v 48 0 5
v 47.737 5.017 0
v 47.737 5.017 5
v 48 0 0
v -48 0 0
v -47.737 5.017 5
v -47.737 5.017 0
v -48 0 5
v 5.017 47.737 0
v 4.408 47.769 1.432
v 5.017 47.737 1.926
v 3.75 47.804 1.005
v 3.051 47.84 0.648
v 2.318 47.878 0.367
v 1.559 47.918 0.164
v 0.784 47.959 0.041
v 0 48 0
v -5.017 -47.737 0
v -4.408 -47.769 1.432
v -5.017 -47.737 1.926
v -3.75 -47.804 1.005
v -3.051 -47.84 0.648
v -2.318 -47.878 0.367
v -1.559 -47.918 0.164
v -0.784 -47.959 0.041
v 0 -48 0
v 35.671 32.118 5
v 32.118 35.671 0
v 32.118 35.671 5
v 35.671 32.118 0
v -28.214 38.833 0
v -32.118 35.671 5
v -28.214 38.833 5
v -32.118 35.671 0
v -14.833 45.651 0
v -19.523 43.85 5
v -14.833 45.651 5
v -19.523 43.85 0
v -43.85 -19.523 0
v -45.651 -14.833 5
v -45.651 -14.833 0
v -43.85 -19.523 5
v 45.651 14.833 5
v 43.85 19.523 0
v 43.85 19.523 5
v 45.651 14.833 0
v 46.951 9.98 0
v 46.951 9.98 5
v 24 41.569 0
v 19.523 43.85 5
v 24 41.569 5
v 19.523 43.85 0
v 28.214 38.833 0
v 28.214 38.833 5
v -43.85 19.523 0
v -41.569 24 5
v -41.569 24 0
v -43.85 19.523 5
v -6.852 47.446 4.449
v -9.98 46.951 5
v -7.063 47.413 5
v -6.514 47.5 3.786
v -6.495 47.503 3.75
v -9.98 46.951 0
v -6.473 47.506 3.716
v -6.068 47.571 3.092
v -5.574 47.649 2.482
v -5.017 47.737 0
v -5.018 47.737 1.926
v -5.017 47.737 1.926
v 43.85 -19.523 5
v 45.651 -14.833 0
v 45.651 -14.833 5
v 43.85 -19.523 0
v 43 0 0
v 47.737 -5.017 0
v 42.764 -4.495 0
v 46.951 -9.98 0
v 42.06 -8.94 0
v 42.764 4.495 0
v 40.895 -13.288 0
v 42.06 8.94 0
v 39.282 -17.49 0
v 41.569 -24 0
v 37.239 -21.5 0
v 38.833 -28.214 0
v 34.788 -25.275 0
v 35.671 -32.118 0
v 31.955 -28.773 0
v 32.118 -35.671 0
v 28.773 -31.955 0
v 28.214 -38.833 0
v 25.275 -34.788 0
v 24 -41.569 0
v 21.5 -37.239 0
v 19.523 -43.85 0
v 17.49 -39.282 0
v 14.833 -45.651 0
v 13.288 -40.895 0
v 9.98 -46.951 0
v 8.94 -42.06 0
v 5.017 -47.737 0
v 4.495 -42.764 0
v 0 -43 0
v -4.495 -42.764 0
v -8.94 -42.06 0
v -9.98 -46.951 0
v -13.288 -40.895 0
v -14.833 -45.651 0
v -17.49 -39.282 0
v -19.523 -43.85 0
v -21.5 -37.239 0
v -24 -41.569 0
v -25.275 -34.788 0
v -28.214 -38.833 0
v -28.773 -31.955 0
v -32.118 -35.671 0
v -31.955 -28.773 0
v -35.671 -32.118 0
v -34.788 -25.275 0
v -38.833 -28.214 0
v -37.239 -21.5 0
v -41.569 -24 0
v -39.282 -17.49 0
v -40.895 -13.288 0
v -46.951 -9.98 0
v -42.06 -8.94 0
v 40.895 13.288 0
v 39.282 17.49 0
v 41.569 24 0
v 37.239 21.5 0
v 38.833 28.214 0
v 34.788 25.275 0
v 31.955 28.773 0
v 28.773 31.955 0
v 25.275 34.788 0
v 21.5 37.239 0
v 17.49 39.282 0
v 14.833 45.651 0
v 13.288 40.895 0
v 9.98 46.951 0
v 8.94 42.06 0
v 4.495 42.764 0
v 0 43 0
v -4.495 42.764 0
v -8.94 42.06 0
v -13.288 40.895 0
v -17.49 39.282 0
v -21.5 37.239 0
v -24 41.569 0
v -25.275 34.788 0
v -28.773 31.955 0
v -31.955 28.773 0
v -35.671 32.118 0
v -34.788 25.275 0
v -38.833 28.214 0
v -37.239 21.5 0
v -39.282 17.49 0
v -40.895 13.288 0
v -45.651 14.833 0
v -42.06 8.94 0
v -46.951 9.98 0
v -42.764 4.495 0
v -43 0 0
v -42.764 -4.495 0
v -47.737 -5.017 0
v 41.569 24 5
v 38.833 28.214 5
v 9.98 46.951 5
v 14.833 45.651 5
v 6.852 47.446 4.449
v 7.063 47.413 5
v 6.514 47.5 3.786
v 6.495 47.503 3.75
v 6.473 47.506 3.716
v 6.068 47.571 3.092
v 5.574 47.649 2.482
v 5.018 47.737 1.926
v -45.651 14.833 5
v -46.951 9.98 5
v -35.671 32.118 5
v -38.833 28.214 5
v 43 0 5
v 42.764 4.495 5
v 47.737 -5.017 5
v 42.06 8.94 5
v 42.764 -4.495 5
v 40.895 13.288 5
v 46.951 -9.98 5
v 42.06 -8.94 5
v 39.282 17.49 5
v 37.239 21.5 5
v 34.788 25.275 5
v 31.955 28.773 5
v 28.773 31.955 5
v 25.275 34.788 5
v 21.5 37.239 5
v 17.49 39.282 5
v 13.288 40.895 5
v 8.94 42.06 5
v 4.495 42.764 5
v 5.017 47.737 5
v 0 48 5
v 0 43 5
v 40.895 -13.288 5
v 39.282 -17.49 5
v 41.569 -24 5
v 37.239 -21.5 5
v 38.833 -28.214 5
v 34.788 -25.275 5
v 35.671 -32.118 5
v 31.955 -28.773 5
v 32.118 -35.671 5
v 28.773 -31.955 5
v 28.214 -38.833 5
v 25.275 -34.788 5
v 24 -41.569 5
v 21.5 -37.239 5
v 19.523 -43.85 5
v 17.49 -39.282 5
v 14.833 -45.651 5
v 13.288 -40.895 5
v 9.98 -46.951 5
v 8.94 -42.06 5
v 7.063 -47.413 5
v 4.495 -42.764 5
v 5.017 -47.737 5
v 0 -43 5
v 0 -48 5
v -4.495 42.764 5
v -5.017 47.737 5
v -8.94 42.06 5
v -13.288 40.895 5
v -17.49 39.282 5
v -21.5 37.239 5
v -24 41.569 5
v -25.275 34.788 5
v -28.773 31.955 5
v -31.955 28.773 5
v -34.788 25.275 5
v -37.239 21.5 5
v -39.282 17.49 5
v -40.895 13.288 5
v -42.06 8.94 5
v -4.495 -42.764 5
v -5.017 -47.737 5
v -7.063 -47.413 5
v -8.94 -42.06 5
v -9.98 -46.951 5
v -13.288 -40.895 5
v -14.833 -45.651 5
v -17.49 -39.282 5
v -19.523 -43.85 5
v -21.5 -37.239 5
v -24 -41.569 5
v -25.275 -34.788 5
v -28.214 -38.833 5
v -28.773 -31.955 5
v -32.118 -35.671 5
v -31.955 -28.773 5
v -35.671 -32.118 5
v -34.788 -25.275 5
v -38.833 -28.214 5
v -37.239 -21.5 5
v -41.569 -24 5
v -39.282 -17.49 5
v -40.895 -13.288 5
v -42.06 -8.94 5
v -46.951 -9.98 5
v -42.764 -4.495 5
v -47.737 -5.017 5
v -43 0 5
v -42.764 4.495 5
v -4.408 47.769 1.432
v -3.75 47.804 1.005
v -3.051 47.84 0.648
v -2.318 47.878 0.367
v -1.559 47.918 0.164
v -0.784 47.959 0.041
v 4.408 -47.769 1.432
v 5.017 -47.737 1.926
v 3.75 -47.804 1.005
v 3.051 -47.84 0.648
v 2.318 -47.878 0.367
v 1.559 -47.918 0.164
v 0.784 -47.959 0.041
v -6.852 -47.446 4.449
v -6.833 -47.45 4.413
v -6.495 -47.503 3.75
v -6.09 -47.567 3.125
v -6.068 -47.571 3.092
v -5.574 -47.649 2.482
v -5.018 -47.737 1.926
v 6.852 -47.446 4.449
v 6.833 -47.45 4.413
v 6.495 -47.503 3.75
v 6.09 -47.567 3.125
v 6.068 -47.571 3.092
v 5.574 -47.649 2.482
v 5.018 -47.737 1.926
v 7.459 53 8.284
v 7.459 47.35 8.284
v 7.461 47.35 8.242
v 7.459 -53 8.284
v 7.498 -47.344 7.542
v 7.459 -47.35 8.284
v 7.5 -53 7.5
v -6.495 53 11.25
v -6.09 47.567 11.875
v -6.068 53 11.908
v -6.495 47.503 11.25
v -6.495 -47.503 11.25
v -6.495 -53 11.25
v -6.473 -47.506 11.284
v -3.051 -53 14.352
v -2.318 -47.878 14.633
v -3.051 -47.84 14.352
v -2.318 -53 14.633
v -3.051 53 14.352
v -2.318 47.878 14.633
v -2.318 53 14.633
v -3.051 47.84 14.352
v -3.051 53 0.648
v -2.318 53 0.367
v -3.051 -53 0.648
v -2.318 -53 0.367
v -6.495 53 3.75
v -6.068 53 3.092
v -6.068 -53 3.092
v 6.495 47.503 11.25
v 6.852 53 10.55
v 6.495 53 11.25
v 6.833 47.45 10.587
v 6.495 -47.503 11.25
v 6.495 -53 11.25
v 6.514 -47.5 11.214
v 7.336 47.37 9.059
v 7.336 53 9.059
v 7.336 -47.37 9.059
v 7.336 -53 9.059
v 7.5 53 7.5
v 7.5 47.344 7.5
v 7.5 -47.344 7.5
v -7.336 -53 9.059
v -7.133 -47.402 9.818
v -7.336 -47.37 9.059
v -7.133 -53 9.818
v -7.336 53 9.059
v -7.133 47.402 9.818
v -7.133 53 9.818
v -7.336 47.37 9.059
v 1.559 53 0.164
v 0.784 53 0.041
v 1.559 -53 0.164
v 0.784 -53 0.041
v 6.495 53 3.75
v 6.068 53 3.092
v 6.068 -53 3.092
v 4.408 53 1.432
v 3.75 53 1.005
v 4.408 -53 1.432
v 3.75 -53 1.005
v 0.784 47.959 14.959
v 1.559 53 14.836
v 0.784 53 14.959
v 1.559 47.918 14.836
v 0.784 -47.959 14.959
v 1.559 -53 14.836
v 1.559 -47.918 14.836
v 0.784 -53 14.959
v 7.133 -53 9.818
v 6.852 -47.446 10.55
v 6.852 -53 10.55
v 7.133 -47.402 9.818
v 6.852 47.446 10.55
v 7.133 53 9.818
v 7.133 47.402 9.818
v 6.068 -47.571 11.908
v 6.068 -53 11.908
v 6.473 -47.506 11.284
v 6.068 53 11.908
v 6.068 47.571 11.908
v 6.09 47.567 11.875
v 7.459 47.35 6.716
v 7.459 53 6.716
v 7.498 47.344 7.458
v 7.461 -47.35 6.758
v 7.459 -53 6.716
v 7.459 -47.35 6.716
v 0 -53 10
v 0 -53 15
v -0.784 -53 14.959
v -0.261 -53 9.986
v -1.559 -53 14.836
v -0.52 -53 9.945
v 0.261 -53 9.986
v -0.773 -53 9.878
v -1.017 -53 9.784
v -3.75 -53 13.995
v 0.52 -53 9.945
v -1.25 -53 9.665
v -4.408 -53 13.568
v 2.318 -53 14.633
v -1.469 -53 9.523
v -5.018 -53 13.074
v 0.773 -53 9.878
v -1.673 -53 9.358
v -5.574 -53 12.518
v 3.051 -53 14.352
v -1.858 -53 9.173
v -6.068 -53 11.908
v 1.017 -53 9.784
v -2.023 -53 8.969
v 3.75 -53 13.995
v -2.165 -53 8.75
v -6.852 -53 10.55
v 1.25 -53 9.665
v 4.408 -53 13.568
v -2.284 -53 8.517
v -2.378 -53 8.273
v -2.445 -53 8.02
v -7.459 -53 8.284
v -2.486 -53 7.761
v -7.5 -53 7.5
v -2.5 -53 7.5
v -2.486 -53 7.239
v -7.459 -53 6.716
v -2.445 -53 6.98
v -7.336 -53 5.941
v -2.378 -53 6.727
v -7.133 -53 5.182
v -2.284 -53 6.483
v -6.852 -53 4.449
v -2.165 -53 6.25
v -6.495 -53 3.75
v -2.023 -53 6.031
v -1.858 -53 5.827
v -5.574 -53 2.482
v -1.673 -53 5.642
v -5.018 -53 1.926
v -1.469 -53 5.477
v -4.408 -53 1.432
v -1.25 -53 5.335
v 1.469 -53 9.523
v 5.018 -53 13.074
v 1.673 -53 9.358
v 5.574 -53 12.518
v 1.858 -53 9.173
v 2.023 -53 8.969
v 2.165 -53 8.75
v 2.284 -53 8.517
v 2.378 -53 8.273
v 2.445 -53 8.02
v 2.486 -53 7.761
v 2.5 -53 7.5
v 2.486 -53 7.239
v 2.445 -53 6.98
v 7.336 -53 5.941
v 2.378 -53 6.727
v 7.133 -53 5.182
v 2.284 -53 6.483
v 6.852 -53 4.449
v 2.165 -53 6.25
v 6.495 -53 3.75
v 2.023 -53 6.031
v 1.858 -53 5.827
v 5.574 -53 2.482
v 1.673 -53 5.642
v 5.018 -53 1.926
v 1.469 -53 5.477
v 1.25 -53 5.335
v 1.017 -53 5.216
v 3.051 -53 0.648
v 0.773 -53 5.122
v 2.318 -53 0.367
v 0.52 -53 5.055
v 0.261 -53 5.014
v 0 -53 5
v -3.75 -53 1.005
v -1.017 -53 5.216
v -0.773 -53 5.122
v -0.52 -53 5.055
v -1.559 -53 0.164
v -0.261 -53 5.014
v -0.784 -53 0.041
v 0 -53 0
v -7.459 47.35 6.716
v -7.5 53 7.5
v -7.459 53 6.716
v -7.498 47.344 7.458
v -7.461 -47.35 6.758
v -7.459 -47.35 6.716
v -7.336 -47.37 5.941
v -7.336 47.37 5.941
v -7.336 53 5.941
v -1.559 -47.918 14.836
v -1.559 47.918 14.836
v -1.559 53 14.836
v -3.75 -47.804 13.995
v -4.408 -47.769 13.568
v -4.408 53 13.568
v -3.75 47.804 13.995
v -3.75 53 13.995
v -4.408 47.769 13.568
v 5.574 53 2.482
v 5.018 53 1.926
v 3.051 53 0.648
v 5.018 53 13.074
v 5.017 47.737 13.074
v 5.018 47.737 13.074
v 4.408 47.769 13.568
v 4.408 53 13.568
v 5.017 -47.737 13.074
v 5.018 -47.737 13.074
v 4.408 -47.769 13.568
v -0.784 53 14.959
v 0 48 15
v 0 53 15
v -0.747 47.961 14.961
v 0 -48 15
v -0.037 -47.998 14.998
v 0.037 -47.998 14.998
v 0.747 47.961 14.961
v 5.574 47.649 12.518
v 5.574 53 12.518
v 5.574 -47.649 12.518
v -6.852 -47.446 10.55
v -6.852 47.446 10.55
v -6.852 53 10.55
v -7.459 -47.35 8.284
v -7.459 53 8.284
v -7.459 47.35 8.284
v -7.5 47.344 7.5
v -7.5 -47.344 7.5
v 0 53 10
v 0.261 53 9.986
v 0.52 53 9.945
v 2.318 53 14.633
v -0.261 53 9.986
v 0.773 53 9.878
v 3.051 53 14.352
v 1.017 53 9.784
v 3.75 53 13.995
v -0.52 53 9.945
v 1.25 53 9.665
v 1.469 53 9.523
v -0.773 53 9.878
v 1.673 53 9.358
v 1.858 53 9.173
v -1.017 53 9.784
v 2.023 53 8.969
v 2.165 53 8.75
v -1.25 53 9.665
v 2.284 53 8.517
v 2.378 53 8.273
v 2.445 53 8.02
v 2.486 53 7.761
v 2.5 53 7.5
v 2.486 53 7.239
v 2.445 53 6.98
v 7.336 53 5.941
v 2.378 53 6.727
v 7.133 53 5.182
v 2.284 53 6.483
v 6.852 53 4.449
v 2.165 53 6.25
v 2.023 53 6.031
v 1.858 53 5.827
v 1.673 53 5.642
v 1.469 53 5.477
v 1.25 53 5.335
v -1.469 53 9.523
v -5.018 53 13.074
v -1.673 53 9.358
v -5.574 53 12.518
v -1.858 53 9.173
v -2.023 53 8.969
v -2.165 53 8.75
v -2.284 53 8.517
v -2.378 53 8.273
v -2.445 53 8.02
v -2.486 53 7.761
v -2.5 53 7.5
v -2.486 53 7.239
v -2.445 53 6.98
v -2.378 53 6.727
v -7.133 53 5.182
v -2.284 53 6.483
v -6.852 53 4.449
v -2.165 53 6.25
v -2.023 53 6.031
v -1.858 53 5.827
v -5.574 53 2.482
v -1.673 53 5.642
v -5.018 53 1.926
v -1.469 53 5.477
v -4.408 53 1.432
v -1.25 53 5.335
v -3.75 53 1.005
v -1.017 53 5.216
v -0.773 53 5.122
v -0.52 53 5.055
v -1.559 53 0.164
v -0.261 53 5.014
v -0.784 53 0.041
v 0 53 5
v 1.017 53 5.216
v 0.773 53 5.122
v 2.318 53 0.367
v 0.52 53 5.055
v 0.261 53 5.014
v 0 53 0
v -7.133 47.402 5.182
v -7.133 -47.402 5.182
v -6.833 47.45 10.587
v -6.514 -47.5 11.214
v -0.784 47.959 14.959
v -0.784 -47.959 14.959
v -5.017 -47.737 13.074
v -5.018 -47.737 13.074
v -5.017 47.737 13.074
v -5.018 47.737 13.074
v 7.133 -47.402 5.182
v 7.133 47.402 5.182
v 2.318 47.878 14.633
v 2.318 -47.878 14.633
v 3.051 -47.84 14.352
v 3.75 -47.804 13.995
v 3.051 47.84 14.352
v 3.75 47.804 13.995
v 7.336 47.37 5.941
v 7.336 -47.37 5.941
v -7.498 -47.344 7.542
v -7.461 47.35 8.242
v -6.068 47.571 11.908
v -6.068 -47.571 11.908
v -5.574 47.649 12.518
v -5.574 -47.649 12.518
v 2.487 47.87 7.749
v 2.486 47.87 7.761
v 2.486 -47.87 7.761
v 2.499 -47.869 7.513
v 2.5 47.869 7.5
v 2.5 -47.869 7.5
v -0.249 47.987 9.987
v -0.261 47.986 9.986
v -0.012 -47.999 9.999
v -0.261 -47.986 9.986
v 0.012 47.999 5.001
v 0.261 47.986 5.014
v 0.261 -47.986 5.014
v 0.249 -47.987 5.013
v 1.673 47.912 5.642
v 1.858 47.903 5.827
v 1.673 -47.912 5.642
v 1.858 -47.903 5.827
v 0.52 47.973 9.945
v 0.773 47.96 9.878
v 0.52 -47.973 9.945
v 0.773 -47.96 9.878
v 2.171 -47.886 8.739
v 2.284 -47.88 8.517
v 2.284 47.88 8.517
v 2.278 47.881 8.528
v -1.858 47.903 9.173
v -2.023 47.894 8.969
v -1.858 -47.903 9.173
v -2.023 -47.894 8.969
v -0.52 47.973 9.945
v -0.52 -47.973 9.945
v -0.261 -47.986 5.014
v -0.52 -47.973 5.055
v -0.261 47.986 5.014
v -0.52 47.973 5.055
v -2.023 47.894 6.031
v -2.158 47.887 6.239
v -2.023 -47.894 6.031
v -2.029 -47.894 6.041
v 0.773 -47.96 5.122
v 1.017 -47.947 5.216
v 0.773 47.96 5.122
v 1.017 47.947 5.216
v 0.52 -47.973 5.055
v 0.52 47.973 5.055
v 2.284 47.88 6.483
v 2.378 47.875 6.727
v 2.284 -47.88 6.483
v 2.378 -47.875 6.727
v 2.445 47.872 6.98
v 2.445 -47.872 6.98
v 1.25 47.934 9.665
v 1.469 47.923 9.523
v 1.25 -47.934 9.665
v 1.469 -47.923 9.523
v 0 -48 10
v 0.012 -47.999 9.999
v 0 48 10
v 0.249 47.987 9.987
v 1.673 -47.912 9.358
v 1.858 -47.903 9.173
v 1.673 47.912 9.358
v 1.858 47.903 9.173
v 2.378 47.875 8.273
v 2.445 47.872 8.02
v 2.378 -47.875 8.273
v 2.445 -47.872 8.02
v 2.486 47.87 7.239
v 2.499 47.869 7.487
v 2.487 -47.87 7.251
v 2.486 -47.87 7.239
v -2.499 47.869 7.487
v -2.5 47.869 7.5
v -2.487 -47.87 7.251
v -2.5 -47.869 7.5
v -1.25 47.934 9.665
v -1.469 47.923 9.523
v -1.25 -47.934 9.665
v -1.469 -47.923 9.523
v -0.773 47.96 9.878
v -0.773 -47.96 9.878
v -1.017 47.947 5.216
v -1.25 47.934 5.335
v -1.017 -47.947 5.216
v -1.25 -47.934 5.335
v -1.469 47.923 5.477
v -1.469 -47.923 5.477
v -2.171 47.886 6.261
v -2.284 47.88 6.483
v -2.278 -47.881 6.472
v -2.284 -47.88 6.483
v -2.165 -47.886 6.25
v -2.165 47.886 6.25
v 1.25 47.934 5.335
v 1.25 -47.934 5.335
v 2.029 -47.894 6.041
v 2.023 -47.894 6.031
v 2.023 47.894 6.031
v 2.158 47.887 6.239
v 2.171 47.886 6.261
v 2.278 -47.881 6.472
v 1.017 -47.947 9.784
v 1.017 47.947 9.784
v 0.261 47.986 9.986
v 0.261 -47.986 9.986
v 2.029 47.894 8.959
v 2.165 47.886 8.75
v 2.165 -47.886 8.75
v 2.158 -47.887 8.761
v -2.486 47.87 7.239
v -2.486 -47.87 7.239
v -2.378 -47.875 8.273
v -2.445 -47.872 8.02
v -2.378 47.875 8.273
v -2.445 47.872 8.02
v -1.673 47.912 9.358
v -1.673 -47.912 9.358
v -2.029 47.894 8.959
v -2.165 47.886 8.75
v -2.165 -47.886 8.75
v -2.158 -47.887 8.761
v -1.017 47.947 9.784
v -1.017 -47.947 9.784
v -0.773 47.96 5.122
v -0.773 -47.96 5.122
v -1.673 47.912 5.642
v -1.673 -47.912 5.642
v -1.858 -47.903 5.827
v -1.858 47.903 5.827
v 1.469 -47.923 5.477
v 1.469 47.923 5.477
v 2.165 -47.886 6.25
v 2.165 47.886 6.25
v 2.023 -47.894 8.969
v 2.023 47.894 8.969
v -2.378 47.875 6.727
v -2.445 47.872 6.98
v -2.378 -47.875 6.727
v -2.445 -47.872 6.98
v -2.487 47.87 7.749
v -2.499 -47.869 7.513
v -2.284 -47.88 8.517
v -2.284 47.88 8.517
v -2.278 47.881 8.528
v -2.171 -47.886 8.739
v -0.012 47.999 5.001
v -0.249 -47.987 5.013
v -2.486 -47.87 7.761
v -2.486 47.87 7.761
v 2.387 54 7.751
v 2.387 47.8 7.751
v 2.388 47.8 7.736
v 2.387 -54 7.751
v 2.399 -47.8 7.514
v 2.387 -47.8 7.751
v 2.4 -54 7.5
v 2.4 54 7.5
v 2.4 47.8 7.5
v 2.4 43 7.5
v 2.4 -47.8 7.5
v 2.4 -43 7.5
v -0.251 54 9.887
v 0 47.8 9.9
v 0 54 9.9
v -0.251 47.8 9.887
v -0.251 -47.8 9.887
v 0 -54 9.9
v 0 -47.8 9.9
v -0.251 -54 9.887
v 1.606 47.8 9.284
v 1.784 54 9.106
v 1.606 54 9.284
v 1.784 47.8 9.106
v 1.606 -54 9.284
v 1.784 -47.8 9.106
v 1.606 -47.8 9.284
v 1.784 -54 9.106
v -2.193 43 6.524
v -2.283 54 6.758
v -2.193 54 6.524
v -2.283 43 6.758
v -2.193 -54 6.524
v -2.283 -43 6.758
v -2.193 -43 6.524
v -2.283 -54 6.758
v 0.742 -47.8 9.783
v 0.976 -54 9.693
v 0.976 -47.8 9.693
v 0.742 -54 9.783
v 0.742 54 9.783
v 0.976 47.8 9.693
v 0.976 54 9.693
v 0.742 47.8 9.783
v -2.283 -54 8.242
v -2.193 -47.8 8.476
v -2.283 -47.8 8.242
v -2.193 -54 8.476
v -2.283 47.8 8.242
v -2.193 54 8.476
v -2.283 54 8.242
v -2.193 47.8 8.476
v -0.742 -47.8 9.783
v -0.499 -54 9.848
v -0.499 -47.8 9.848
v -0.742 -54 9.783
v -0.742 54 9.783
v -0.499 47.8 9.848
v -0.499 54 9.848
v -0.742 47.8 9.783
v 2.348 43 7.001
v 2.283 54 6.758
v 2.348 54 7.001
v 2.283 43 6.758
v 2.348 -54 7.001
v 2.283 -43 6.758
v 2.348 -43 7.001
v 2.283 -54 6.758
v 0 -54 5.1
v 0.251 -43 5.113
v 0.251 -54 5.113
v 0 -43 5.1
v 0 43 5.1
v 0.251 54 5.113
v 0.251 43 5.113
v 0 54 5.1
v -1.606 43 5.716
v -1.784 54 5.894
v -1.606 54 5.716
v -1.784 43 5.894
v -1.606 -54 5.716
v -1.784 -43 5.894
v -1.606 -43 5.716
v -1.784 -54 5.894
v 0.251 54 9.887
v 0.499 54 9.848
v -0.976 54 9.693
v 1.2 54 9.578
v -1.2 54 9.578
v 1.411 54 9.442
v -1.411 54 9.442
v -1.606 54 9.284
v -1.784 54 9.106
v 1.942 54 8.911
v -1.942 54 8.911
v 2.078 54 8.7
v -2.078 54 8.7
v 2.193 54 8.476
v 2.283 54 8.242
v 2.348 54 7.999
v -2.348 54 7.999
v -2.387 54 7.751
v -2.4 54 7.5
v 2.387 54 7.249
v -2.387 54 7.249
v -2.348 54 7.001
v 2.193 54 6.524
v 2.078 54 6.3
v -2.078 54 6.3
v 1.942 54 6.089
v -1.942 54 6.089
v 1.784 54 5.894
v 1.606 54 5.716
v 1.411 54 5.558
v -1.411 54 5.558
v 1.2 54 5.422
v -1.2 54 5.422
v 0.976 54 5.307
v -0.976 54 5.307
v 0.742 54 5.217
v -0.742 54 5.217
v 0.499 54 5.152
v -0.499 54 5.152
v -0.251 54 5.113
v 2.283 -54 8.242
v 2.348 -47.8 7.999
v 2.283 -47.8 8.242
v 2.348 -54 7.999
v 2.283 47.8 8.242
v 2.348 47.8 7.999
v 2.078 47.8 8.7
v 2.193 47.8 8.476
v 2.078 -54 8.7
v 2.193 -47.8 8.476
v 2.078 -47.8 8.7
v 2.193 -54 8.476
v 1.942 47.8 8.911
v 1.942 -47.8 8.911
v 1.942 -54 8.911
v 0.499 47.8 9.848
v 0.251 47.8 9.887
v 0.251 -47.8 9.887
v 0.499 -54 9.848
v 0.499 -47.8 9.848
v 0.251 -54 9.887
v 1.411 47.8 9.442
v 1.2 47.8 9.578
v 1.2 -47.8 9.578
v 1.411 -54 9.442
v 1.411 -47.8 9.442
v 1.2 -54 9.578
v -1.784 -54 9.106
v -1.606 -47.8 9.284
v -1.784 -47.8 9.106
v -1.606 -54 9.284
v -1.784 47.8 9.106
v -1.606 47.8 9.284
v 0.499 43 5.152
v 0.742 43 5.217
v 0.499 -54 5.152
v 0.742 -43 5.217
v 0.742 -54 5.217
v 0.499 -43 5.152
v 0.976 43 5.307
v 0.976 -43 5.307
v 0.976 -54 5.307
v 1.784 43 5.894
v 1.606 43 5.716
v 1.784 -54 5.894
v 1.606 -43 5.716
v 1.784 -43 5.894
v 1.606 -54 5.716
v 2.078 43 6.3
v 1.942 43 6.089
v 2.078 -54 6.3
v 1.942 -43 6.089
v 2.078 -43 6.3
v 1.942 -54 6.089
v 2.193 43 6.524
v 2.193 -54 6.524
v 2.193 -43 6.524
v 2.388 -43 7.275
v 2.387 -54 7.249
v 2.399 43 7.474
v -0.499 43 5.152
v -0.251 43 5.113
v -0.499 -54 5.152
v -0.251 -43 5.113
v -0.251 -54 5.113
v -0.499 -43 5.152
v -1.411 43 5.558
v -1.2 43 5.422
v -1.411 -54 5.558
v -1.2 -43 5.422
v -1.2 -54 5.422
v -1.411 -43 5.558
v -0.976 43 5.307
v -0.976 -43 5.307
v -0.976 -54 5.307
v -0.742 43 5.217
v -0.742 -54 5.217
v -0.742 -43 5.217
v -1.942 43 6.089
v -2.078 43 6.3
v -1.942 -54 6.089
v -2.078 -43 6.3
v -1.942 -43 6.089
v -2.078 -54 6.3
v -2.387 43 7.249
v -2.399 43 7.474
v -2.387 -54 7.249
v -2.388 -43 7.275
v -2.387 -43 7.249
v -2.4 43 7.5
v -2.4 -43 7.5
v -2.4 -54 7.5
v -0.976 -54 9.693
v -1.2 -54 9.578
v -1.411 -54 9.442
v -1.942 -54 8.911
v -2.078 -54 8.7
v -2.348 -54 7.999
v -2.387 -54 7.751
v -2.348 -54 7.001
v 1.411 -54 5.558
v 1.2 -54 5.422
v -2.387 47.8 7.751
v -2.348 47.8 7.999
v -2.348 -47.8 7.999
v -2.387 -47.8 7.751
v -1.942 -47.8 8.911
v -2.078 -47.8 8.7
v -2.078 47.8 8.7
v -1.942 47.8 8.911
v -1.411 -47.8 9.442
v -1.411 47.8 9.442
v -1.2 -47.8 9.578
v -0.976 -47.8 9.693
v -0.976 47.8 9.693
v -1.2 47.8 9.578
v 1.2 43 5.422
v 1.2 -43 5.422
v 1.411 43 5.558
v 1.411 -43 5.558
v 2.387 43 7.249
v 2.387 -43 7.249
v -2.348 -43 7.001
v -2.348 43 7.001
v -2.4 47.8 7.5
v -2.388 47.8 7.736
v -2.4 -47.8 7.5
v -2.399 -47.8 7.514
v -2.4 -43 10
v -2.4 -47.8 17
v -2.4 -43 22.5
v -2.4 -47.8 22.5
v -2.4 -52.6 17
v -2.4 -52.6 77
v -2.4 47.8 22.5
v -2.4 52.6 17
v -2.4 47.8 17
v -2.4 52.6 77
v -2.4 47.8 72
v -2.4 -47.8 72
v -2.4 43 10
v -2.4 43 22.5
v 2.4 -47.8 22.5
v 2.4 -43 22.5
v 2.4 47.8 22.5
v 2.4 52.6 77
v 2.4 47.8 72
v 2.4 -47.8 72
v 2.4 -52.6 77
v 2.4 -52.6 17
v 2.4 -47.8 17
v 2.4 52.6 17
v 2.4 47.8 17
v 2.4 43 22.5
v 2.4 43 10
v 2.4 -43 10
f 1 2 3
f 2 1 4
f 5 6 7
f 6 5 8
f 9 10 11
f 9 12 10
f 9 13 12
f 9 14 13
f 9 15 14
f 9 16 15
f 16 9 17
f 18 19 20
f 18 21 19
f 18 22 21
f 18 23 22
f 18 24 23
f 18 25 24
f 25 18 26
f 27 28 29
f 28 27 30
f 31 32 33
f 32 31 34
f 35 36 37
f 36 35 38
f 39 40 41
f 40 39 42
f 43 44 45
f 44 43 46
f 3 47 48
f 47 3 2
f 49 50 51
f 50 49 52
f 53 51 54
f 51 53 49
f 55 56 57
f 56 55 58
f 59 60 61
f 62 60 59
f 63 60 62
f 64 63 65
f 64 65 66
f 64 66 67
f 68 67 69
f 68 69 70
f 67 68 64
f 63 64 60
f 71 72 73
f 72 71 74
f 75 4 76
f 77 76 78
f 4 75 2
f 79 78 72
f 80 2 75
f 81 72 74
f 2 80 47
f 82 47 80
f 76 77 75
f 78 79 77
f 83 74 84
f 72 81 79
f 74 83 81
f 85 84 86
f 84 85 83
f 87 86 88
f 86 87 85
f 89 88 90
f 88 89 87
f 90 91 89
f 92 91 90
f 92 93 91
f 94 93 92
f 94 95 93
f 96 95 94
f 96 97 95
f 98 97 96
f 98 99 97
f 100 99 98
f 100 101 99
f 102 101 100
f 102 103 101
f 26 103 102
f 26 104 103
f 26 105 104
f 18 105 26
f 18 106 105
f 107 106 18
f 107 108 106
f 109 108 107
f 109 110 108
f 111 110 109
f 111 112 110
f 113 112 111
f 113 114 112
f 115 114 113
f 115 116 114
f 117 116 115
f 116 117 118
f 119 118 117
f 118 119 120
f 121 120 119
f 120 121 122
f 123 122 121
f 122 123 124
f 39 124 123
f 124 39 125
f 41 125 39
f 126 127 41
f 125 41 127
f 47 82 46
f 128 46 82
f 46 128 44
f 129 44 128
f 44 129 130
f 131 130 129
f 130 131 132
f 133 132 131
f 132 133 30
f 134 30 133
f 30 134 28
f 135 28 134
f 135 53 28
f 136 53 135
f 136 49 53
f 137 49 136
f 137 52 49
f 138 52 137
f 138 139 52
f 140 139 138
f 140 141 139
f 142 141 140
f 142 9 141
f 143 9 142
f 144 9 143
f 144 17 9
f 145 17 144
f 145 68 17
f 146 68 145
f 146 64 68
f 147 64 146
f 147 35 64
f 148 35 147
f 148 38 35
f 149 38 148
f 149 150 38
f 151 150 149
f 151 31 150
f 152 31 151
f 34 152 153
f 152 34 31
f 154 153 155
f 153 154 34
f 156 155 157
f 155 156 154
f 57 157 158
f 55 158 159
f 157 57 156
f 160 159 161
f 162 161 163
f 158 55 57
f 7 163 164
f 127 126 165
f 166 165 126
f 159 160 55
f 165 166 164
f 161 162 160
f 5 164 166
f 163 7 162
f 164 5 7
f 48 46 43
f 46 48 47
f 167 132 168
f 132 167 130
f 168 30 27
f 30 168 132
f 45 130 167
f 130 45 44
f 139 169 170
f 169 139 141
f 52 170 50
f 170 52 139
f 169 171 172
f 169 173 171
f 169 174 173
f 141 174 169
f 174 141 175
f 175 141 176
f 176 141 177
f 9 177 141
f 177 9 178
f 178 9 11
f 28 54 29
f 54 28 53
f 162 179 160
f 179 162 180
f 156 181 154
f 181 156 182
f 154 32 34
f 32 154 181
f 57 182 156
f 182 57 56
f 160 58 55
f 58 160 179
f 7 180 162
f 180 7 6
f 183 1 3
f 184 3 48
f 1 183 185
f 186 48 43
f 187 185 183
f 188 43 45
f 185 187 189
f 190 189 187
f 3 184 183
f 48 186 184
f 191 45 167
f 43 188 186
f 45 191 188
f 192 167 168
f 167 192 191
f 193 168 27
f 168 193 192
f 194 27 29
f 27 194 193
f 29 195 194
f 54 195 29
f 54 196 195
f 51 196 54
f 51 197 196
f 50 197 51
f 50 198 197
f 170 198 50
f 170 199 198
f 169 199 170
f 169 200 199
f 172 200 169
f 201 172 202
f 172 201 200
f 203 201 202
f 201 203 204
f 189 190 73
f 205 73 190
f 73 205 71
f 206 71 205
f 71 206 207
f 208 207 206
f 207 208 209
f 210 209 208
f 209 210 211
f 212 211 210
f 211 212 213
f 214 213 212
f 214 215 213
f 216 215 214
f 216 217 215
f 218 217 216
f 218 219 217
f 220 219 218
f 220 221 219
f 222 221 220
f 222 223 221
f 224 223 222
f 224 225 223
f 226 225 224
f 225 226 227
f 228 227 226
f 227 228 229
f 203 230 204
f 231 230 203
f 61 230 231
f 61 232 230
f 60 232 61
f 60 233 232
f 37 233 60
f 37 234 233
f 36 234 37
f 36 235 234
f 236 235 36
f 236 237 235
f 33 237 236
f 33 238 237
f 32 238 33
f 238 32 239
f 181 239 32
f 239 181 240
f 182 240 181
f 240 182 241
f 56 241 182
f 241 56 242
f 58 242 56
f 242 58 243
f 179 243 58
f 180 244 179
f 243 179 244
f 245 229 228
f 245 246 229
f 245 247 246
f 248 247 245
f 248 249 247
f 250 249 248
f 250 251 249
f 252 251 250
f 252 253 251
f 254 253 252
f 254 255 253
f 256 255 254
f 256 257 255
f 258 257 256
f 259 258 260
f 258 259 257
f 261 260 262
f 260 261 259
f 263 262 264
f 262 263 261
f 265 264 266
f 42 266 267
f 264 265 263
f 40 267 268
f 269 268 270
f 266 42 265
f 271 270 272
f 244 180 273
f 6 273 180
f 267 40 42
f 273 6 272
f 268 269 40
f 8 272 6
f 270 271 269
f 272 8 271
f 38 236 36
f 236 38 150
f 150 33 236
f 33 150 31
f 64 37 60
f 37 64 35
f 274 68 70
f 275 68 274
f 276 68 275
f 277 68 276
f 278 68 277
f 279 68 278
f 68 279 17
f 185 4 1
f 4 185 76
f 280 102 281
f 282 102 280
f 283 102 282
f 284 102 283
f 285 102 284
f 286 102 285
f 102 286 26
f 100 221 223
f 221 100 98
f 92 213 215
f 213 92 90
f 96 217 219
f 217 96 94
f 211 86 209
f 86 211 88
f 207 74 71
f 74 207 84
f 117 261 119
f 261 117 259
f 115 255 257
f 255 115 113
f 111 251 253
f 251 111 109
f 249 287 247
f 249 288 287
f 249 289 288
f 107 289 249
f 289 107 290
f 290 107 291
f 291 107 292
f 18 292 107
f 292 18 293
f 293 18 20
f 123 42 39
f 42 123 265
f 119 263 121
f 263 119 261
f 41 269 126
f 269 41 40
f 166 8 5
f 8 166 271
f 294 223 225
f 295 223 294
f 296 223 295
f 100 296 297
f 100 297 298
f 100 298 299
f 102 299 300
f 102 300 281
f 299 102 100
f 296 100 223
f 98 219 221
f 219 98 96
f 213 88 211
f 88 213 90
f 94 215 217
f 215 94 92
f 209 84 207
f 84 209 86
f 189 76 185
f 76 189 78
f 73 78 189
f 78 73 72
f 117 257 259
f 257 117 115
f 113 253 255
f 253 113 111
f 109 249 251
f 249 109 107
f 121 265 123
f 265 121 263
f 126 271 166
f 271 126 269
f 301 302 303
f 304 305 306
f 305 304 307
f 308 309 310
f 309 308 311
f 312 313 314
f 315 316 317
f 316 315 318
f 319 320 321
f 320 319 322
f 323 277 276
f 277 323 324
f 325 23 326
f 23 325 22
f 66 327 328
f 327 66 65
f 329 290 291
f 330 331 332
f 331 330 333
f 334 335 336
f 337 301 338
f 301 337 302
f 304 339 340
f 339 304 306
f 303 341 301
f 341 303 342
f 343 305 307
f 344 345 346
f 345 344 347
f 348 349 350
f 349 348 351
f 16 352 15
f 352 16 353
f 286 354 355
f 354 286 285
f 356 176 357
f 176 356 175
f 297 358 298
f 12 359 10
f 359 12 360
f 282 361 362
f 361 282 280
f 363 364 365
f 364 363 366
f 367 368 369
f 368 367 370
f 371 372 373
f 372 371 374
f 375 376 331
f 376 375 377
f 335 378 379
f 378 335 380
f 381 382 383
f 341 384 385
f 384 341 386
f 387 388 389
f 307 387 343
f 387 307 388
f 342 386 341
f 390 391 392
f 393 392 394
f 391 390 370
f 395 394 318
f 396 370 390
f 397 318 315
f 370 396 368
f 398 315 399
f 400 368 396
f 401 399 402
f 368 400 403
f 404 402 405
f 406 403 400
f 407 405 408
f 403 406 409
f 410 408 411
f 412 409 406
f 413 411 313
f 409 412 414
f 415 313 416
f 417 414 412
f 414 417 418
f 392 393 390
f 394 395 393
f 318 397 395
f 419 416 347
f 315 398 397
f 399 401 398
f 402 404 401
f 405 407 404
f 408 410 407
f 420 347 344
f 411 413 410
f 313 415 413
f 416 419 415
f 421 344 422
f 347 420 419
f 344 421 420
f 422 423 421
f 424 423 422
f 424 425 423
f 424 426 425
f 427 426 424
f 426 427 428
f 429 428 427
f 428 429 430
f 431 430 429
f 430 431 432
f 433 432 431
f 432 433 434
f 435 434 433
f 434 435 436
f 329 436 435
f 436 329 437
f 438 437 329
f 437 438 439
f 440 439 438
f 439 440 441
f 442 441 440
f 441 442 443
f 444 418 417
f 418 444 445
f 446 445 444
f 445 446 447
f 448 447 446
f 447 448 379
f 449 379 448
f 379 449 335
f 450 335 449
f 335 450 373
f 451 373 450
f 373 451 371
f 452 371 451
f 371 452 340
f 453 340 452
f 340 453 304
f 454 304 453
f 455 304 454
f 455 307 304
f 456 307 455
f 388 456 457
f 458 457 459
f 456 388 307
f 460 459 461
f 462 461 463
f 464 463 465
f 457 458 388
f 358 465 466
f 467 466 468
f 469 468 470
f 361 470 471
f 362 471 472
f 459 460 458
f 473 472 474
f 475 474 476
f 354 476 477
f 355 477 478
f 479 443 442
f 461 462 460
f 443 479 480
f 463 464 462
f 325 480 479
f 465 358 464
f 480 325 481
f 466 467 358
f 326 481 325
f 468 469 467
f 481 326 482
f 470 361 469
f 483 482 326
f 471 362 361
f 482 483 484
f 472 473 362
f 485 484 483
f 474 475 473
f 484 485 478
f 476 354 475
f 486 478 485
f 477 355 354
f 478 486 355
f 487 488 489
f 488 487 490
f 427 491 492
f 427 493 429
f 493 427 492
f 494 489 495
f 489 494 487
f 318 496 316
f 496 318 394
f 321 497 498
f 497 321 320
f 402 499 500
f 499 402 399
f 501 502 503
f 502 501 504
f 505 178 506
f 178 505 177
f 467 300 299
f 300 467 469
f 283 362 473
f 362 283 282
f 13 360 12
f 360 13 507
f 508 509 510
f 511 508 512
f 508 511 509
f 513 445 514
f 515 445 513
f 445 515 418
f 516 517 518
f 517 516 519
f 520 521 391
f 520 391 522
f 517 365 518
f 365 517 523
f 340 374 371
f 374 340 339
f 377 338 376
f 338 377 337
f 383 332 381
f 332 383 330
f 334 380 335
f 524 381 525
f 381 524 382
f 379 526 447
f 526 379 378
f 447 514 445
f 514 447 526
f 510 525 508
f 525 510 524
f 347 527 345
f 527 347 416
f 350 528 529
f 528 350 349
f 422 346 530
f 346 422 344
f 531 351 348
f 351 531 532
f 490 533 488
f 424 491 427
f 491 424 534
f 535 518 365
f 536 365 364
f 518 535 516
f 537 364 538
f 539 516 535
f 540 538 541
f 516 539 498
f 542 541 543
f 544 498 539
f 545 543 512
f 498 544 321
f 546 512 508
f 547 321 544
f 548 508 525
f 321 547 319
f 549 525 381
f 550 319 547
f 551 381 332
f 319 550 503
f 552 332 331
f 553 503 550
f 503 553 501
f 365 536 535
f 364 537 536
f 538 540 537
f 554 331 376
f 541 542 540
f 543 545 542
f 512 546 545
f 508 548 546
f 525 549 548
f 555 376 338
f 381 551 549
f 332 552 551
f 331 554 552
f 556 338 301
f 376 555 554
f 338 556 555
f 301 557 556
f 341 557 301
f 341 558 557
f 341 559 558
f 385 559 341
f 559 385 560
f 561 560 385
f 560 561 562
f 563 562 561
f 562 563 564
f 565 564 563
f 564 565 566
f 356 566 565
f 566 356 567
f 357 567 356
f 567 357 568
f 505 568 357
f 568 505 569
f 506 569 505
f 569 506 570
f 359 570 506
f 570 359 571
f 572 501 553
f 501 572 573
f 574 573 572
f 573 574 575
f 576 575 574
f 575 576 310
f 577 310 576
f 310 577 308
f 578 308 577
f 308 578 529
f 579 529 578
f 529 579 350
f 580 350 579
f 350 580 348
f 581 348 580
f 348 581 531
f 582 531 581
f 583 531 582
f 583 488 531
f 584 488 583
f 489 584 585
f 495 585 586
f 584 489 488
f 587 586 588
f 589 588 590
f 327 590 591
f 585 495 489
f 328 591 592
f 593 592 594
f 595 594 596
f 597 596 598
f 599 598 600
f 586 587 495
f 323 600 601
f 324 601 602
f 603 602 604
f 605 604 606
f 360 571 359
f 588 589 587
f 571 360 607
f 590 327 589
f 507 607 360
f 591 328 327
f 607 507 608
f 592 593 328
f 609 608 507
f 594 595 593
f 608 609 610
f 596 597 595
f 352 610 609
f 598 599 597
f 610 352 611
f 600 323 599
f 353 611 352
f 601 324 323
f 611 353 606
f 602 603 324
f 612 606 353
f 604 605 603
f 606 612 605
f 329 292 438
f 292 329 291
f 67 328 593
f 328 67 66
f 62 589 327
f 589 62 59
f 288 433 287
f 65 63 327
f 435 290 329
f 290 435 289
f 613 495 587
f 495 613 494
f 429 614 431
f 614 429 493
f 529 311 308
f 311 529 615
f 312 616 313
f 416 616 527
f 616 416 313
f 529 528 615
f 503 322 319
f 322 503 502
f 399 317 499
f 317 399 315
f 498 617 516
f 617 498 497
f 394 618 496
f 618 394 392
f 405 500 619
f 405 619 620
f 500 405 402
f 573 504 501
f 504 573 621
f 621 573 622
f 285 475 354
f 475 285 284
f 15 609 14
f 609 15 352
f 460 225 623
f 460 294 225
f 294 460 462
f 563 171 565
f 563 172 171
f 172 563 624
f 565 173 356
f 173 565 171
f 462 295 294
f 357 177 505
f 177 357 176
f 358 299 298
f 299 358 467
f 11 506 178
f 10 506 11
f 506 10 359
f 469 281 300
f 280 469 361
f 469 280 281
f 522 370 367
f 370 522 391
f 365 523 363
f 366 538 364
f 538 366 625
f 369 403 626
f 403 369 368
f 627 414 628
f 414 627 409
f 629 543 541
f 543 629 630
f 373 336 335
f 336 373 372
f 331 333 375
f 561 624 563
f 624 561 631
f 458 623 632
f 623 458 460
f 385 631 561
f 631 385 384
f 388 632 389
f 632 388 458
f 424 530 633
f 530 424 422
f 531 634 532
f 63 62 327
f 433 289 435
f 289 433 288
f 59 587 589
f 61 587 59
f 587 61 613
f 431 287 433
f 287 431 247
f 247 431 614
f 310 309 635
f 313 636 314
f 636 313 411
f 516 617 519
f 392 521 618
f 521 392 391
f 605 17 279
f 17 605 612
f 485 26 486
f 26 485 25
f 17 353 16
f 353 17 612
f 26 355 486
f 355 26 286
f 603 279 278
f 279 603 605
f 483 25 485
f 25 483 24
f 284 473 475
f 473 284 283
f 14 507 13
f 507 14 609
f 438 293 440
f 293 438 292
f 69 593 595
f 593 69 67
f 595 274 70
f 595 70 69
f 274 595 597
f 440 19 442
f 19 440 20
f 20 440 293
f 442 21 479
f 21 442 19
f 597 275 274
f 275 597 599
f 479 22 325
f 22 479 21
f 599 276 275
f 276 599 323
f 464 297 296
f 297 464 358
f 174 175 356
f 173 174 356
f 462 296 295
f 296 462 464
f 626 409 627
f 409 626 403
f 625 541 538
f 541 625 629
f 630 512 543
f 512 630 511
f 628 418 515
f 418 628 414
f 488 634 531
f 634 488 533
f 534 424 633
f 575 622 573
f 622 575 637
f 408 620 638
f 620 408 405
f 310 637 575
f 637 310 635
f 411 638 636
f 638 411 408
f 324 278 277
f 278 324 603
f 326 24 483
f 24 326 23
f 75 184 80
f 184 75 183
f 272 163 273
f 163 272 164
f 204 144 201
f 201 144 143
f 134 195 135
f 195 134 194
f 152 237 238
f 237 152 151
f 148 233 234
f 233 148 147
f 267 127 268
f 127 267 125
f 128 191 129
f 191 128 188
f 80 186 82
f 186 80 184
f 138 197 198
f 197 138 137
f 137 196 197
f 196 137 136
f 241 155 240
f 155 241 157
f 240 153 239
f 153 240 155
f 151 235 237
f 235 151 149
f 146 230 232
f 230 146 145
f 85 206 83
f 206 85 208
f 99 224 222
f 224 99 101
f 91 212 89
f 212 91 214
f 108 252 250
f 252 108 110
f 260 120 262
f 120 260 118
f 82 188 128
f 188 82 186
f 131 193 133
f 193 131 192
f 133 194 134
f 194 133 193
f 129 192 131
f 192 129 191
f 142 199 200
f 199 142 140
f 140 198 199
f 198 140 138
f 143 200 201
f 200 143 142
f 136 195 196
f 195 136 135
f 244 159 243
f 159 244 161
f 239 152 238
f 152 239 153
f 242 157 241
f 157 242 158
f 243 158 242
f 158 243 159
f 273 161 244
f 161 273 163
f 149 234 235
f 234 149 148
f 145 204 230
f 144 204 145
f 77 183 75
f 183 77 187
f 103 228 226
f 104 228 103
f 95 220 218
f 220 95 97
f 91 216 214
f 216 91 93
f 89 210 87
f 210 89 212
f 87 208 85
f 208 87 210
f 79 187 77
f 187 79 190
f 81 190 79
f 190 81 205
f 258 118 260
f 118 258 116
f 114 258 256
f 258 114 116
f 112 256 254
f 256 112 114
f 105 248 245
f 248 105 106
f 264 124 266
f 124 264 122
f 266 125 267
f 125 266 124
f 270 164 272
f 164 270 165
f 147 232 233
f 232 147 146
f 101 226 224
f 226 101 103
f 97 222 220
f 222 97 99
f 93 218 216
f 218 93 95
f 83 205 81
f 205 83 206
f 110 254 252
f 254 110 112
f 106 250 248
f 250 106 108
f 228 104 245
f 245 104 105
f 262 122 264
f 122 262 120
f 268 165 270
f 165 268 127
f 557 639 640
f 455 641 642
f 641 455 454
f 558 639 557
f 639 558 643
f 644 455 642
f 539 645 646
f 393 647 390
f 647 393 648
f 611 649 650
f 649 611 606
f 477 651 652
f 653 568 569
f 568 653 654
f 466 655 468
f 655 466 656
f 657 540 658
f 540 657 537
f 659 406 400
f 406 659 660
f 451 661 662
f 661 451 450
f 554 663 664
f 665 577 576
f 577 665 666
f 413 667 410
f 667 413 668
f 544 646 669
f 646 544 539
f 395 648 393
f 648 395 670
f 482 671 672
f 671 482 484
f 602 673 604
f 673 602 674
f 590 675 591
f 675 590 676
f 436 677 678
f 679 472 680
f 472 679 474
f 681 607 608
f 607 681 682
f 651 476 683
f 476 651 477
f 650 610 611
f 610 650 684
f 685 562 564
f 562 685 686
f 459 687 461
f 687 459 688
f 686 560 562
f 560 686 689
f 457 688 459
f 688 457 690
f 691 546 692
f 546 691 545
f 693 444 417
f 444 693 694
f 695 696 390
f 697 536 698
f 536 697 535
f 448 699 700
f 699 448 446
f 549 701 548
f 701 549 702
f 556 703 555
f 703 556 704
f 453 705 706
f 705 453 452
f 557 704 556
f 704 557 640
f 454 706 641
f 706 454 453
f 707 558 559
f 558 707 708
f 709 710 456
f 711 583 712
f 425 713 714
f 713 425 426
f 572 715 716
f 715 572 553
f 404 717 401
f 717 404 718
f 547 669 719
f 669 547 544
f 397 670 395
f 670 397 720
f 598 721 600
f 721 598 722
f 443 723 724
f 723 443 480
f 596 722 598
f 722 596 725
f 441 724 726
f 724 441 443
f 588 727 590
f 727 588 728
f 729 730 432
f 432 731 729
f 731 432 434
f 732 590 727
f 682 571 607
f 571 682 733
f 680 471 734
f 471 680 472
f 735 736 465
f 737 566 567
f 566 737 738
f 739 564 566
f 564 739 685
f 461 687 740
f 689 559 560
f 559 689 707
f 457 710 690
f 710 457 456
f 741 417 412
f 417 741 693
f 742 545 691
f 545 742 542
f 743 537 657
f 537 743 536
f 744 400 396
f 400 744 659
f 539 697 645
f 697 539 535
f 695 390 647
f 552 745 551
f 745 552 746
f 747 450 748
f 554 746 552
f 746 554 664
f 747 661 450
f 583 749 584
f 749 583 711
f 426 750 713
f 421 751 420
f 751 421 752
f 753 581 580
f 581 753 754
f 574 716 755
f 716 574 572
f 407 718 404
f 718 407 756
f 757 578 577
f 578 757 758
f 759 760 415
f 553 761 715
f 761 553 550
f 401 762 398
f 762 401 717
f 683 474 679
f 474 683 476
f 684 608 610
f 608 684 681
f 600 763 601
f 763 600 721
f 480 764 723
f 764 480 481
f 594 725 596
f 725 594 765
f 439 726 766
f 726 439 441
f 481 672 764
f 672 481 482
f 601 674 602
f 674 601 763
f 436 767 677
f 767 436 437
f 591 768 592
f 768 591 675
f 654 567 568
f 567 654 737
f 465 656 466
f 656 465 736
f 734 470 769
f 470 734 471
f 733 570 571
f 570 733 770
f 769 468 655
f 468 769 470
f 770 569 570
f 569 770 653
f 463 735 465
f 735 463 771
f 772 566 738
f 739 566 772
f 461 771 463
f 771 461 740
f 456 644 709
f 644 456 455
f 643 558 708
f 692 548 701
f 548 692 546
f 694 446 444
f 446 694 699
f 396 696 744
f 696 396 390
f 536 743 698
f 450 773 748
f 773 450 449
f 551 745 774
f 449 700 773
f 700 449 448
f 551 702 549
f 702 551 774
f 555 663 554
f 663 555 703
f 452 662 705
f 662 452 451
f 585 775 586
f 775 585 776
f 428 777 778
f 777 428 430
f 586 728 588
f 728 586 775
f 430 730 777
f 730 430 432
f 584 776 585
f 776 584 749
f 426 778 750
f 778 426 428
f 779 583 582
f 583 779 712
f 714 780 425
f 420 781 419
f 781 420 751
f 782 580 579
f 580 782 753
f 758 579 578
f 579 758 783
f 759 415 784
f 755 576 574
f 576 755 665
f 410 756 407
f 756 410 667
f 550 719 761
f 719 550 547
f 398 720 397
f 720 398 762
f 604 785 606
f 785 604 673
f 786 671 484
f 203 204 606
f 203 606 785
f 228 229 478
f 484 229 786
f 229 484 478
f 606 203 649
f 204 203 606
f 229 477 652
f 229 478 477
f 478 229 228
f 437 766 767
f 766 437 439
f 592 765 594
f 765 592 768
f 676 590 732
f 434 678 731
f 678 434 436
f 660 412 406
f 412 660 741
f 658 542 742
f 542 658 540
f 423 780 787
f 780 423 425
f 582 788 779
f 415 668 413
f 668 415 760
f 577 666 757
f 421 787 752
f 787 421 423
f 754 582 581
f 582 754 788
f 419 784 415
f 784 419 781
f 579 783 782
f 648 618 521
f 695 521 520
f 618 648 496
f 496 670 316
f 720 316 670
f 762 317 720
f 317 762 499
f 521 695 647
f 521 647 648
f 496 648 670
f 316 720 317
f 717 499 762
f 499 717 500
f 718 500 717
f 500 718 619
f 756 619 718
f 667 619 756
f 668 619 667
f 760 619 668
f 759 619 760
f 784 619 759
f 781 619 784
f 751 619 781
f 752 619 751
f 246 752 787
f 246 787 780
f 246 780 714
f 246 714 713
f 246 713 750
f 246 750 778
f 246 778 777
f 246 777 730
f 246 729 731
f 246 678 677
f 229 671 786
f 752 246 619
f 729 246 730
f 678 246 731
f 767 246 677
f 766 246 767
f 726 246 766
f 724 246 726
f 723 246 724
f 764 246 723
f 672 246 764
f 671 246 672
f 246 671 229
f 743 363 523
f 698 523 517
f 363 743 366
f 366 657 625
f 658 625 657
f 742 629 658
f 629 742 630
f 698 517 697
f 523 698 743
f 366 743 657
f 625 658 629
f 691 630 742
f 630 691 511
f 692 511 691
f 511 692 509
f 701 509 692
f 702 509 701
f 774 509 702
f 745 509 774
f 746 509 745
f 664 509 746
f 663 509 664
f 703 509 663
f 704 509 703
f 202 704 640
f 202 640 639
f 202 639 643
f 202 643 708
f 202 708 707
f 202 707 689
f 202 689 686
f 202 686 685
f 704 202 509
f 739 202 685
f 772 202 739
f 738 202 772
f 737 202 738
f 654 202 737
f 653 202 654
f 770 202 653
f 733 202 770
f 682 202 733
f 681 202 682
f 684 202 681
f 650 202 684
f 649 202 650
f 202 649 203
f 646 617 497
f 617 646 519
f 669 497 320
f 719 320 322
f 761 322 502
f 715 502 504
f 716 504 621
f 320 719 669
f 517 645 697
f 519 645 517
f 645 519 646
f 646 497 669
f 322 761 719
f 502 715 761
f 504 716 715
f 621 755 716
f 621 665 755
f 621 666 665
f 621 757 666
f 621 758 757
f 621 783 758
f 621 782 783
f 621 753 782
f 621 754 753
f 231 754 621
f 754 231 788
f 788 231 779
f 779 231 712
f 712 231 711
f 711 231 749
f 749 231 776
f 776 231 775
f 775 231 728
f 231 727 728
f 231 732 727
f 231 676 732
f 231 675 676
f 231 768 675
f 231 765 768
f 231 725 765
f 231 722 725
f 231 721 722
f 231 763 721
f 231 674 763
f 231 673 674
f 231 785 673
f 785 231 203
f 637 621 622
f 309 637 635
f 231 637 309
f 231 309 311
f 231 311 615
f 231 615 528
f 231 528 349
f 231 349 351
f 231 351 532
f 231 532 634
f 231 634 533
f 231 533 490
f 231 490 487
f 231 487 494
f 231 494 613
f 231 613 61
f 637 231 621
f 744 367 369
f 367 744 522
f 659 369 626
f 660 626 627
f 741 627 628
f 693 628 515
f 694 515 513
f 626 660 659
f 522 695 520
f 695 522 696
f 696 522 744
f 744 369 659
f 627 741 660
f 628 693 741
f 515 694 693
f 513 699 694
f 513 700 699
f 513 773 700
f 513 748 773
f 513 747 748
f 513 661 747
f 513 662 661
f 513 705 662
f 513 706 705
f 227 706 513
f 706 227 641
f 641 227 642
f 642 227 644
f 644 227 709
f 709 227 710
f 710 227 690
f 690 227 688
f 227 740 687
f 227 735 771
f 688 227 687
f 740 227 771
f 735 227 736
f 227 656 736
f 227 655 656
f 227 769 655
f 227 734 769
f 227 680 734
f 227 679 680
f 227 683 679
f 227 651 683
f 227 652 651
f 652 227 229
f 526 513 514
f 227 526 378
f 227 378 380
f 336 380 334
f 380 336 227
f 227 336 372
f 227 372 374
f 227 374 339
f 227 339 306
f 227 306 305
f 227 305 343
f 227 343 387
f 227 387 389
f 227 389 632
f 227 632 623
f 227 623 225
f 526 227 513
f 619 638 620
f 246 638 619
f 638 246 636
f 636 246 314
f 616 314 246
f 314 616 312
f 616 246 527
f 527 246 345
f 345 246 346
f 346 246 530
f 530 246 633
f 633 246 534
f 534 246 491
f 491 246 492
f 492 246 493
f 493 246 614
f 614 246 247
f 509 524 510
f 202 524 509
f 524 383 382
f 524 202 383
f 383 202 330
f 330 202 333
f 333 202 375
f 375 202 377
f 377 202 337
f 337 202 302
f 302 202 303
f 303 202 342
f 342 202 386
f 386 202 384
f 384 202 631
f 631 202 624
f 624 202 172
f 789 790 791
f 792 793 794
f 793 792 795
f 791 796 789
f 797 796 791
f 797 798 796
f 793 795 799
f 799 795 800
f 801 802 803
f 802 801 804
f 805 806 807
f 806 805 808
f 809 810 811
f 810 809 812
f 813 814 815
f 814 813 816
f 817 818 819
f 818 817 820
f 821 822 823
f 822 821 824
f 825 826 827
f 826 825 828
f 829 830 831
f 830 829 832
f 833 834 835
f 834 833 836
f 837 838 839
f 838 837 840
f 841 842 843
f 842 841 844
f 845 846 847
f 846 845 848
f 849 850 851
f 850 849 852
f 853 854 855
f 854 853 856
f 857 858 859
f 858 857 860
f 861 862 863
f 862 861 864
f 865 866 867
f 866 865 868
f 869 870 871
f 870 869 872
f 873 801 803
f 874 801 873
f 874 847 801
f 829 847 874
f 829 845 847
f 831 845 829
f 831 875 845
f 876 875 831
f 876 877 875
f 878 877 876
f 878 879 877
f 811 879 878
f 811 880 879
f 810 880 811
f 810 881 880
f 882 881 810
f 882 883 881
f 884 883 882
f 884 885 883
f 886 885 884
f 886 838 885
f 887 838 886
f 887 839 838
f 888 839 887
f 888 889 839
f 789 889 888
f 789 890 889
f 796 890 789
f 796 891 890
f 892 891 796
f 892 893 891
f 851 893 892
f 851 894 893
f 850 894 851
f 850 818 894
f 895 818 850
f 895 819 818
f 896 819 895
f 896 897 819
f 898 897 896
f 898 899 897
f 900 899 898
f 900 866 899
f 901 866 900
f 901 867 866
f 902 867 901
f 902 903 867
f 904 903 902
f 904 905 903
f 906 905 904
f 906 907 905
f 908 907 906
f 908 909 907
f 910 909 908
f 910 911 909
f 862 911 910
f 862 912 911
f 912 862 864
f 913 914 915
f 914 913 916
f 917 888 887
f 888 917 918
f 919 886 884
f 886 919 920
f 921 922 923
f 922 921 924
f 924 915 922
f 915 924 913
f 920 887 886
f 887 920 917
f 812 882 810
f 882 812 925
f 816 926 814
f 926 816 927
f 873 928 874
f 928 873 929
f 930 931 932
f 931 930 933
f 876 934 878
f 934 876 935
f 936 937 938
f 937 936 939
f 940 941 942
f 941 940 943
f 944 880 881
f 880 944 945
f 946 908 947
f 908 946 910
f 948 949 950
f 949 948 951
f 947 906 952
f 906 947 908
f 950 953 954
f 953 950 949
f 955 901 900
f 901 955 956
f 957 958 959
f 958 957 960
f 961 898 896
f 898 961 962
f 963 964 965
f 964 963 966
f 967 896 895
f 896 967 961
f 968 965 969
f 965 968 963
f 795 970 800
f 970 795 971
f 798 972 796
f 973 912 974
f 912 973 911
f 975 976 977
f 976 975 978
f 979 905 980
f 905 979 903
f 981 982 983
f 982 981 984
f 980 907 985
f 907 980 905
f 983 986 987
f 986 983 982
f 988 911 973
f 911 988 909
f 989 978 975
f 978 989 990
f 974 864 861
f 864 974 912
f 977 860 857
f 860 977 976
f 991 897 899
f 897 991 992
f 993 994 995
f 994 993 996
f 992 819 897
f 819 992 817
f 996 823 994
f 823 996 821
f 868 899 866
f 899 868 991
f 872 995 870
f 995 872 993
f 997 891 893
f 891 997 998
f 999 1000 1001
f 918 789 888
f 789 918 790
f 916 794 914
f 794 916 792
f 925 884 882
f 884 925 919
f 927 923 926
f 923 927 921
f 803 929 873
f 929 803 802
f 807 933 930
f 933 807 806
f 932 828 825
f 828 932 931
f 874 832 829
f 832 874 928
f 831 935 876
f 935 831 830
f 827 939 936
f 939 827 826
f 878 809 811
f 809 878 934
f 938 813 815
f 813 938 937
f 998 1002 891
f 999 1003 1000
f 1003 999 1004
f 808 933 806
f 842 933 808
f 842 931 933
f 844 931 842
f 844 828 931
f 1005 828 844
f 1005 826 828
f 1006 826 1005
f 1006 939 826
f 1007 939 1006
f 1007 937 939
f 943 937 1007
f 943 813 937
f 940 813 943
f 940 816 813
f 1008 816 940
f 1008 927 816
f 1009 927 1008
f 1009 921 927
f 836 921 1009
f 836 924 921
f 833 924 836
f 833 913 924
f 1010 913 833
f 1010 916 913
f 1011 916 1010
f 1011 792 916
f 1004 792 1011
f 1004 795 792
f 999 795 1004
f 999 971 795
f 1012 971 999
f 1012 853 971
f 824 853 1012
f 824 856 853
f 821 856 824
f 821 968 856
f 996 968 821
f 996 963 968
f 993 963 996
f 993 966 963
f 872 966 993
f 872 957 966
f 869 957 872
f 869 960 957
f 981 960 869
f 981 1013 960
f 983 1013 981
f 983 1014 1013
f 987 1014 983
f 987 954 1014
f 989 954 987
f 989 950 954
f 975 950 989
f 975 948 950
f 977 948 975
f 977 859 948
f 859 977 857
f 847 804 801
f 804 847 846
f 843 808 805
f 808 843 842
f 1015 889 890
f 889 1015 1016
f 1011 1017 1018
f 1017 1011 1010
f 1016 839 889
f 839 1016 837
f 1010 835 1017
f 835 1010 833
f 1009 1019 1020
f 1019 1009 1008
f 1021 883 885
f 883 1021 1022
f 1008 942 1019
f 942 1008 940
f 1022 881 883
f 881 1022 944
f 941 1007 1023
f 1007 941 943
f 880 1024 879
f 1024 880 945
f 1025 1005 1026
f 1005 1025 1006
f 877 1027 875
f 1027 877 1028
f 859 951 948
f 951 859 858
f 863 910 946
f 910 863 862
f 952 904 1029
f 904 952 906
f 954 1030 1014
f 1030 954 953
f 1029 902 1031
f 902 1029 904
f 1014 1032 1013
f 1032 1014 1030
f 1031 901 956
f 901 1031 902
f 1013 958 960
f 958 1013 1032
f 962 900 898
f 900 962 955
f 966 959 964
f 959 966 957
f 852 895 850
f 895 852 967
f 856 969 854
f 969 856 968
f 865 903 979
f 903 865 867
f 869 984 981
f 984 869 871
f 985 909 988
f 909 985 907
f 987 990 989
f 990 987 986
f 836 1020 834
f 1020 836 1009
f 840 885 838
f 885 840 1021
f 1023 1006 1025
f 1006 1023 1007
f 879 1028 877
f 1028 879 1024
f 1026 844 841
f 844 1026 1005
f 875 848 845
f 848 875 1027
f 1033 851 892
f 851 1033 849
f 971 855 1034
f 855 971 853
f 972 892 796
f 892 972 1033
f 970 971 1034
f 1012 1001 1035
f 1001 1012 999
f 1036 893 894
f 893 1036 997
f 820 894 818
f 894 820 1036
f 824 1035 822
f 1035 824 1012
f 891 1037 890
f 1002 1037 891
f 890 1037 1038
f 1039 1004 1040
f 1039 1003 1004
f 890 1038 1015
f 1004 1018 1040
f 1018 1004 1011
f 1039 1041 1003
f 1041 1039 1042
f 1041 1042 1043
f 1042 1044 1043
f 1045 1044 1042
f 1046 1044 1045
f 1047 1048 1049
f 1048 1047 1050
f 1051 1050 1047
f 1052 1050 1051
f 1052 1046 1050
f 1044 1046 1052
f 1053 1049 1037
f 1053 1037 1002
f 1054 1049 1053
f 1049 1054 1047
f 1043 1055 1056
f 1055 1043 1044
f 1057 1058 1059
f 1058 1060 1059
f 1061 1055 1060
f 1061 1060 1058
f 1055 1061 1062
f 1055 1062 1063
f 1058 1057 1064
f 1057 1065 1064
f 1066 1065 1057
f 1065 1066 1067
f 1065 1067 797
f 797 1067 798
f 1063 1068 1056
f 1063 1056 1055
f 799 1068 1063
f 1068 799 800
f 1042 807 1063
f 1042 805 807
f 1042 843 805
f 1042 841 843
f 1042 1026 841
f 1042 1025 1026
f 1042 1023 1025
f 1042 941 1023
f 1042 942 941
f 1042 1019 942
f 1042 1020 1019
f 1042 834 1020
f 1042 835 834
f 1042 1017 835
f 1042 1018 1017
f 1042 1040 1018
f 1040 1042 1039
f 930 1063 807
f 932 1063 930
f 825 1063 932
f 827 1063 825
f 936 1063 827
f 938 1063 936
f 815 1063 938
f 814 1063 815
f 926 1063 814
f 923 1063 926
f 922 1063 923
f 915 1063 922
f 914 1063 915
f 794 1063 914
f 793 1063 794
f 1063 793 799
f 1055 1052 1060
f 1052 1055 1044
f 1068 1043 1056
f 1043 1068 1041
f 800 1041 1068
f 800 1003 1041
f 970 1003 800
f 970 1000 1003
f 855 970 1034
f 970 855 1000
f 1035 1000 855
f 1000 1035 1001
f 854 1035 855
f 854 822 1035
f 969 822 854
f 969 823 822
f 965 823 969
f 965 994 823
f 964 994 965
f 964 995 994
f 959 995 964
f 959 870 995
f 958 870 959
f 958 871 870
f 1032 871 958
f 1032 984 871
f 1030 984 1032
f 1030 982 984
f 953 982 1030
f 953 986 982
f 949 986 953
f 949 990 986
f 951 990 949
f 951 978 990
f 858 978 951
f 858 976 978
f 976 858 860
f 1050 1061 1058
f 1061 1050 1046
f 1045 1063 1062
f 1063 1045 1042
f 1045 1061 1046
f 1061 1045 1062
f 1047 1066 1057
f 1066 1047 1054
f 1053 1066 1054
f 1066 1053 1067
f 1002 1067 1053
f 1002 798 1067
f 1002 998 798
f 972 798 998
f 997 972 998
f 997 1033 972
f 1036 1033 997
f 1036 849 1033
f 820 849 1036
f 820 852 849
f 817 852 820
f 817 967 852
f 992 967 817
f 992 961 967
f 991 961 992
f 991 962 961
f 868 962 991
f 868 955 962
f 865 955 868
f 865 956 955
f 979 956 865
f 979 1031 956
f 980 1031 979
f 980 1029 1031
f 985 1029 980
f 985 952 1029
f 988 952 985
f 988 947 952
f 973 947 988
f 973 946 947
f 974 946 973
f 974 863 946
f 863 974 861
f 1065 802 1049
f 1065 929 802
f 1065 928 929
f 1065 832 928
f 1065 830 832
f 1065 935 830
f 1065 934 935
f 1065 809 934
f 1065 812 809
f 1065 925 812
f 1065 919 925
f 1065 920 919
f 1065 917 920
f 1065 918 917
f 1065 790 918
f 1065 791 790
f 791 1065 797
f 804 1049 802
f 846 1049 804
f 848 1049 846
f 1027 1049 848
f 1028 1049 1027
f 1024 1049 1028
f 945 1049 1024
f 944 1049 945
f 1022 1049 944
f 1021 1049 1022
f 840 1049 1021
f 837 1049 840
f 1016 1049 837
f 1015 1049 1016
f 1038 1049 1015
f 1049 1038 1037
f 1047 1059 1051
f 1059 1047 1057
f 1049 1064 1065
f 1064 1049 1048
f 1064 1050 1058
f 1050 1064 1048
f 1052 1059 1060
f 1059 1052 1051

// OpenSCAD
diameter = 86; 
height = 72; // [18:]

ring = true;
handle = true;

$fn=60;
if (ring) {
difference() {
    union() {
        cylinder(5, (diameter+10)/2, (diameter+10)/2);
        rotate([90,0,0]) {
            translate([0, 7.5, -(diameter + 20) / 2]) {
                cylinder((diameter + 20), 7.5, 7.5);
            }
        }
    }
    cylinder(11, diameter / 2, diameter / 2);
    rotate([90,0,0]) {
        translate([0, 7.5, -(diameter + 20) / 2]) {
            cylinder((diameter + 20), 2.5, 2.5);
        }
    }
    translate([0, 0, 5]) {
        cylinder(11, (diameter+10)/2, (diameter+10)/2);
    }
}
}

if (handle) {
difference() {
    union() {
        rotate([90,0,0]) {
            translate([0, 7.5, -(diameter + 22) / 2]) {
                cylinder((diameter + 22), 2.4, 2.4);
            }
        }
        translate([-2.4, -diameter / 2 - 4.8, 7.5]) {
            cube([4.8, 4.8, 15]);
        }
        translate([-2.4, -diameter / 2 - 9.6, 17]) {
            cube([4.8, 4.8, height - 12]);
        }
        translate([-2.4, diameter / 2, 7.5]) {
            cube([4.8, 4.8, 15]);
        }
        translate([-2.4, diameter / 2 + 4.8, 17]) {
            cube([4.8, 4.8, height - 12]);
        }
        translate([-2.4, -(diameter + 15) / 2, height]) {
            cube([4.8, (diameter) + 15, 5]);
        }        
    }
    translate([-3, -(diameter) / 2, 5]) {
        cube([6, (diameter), 5]);
    }
}
}
